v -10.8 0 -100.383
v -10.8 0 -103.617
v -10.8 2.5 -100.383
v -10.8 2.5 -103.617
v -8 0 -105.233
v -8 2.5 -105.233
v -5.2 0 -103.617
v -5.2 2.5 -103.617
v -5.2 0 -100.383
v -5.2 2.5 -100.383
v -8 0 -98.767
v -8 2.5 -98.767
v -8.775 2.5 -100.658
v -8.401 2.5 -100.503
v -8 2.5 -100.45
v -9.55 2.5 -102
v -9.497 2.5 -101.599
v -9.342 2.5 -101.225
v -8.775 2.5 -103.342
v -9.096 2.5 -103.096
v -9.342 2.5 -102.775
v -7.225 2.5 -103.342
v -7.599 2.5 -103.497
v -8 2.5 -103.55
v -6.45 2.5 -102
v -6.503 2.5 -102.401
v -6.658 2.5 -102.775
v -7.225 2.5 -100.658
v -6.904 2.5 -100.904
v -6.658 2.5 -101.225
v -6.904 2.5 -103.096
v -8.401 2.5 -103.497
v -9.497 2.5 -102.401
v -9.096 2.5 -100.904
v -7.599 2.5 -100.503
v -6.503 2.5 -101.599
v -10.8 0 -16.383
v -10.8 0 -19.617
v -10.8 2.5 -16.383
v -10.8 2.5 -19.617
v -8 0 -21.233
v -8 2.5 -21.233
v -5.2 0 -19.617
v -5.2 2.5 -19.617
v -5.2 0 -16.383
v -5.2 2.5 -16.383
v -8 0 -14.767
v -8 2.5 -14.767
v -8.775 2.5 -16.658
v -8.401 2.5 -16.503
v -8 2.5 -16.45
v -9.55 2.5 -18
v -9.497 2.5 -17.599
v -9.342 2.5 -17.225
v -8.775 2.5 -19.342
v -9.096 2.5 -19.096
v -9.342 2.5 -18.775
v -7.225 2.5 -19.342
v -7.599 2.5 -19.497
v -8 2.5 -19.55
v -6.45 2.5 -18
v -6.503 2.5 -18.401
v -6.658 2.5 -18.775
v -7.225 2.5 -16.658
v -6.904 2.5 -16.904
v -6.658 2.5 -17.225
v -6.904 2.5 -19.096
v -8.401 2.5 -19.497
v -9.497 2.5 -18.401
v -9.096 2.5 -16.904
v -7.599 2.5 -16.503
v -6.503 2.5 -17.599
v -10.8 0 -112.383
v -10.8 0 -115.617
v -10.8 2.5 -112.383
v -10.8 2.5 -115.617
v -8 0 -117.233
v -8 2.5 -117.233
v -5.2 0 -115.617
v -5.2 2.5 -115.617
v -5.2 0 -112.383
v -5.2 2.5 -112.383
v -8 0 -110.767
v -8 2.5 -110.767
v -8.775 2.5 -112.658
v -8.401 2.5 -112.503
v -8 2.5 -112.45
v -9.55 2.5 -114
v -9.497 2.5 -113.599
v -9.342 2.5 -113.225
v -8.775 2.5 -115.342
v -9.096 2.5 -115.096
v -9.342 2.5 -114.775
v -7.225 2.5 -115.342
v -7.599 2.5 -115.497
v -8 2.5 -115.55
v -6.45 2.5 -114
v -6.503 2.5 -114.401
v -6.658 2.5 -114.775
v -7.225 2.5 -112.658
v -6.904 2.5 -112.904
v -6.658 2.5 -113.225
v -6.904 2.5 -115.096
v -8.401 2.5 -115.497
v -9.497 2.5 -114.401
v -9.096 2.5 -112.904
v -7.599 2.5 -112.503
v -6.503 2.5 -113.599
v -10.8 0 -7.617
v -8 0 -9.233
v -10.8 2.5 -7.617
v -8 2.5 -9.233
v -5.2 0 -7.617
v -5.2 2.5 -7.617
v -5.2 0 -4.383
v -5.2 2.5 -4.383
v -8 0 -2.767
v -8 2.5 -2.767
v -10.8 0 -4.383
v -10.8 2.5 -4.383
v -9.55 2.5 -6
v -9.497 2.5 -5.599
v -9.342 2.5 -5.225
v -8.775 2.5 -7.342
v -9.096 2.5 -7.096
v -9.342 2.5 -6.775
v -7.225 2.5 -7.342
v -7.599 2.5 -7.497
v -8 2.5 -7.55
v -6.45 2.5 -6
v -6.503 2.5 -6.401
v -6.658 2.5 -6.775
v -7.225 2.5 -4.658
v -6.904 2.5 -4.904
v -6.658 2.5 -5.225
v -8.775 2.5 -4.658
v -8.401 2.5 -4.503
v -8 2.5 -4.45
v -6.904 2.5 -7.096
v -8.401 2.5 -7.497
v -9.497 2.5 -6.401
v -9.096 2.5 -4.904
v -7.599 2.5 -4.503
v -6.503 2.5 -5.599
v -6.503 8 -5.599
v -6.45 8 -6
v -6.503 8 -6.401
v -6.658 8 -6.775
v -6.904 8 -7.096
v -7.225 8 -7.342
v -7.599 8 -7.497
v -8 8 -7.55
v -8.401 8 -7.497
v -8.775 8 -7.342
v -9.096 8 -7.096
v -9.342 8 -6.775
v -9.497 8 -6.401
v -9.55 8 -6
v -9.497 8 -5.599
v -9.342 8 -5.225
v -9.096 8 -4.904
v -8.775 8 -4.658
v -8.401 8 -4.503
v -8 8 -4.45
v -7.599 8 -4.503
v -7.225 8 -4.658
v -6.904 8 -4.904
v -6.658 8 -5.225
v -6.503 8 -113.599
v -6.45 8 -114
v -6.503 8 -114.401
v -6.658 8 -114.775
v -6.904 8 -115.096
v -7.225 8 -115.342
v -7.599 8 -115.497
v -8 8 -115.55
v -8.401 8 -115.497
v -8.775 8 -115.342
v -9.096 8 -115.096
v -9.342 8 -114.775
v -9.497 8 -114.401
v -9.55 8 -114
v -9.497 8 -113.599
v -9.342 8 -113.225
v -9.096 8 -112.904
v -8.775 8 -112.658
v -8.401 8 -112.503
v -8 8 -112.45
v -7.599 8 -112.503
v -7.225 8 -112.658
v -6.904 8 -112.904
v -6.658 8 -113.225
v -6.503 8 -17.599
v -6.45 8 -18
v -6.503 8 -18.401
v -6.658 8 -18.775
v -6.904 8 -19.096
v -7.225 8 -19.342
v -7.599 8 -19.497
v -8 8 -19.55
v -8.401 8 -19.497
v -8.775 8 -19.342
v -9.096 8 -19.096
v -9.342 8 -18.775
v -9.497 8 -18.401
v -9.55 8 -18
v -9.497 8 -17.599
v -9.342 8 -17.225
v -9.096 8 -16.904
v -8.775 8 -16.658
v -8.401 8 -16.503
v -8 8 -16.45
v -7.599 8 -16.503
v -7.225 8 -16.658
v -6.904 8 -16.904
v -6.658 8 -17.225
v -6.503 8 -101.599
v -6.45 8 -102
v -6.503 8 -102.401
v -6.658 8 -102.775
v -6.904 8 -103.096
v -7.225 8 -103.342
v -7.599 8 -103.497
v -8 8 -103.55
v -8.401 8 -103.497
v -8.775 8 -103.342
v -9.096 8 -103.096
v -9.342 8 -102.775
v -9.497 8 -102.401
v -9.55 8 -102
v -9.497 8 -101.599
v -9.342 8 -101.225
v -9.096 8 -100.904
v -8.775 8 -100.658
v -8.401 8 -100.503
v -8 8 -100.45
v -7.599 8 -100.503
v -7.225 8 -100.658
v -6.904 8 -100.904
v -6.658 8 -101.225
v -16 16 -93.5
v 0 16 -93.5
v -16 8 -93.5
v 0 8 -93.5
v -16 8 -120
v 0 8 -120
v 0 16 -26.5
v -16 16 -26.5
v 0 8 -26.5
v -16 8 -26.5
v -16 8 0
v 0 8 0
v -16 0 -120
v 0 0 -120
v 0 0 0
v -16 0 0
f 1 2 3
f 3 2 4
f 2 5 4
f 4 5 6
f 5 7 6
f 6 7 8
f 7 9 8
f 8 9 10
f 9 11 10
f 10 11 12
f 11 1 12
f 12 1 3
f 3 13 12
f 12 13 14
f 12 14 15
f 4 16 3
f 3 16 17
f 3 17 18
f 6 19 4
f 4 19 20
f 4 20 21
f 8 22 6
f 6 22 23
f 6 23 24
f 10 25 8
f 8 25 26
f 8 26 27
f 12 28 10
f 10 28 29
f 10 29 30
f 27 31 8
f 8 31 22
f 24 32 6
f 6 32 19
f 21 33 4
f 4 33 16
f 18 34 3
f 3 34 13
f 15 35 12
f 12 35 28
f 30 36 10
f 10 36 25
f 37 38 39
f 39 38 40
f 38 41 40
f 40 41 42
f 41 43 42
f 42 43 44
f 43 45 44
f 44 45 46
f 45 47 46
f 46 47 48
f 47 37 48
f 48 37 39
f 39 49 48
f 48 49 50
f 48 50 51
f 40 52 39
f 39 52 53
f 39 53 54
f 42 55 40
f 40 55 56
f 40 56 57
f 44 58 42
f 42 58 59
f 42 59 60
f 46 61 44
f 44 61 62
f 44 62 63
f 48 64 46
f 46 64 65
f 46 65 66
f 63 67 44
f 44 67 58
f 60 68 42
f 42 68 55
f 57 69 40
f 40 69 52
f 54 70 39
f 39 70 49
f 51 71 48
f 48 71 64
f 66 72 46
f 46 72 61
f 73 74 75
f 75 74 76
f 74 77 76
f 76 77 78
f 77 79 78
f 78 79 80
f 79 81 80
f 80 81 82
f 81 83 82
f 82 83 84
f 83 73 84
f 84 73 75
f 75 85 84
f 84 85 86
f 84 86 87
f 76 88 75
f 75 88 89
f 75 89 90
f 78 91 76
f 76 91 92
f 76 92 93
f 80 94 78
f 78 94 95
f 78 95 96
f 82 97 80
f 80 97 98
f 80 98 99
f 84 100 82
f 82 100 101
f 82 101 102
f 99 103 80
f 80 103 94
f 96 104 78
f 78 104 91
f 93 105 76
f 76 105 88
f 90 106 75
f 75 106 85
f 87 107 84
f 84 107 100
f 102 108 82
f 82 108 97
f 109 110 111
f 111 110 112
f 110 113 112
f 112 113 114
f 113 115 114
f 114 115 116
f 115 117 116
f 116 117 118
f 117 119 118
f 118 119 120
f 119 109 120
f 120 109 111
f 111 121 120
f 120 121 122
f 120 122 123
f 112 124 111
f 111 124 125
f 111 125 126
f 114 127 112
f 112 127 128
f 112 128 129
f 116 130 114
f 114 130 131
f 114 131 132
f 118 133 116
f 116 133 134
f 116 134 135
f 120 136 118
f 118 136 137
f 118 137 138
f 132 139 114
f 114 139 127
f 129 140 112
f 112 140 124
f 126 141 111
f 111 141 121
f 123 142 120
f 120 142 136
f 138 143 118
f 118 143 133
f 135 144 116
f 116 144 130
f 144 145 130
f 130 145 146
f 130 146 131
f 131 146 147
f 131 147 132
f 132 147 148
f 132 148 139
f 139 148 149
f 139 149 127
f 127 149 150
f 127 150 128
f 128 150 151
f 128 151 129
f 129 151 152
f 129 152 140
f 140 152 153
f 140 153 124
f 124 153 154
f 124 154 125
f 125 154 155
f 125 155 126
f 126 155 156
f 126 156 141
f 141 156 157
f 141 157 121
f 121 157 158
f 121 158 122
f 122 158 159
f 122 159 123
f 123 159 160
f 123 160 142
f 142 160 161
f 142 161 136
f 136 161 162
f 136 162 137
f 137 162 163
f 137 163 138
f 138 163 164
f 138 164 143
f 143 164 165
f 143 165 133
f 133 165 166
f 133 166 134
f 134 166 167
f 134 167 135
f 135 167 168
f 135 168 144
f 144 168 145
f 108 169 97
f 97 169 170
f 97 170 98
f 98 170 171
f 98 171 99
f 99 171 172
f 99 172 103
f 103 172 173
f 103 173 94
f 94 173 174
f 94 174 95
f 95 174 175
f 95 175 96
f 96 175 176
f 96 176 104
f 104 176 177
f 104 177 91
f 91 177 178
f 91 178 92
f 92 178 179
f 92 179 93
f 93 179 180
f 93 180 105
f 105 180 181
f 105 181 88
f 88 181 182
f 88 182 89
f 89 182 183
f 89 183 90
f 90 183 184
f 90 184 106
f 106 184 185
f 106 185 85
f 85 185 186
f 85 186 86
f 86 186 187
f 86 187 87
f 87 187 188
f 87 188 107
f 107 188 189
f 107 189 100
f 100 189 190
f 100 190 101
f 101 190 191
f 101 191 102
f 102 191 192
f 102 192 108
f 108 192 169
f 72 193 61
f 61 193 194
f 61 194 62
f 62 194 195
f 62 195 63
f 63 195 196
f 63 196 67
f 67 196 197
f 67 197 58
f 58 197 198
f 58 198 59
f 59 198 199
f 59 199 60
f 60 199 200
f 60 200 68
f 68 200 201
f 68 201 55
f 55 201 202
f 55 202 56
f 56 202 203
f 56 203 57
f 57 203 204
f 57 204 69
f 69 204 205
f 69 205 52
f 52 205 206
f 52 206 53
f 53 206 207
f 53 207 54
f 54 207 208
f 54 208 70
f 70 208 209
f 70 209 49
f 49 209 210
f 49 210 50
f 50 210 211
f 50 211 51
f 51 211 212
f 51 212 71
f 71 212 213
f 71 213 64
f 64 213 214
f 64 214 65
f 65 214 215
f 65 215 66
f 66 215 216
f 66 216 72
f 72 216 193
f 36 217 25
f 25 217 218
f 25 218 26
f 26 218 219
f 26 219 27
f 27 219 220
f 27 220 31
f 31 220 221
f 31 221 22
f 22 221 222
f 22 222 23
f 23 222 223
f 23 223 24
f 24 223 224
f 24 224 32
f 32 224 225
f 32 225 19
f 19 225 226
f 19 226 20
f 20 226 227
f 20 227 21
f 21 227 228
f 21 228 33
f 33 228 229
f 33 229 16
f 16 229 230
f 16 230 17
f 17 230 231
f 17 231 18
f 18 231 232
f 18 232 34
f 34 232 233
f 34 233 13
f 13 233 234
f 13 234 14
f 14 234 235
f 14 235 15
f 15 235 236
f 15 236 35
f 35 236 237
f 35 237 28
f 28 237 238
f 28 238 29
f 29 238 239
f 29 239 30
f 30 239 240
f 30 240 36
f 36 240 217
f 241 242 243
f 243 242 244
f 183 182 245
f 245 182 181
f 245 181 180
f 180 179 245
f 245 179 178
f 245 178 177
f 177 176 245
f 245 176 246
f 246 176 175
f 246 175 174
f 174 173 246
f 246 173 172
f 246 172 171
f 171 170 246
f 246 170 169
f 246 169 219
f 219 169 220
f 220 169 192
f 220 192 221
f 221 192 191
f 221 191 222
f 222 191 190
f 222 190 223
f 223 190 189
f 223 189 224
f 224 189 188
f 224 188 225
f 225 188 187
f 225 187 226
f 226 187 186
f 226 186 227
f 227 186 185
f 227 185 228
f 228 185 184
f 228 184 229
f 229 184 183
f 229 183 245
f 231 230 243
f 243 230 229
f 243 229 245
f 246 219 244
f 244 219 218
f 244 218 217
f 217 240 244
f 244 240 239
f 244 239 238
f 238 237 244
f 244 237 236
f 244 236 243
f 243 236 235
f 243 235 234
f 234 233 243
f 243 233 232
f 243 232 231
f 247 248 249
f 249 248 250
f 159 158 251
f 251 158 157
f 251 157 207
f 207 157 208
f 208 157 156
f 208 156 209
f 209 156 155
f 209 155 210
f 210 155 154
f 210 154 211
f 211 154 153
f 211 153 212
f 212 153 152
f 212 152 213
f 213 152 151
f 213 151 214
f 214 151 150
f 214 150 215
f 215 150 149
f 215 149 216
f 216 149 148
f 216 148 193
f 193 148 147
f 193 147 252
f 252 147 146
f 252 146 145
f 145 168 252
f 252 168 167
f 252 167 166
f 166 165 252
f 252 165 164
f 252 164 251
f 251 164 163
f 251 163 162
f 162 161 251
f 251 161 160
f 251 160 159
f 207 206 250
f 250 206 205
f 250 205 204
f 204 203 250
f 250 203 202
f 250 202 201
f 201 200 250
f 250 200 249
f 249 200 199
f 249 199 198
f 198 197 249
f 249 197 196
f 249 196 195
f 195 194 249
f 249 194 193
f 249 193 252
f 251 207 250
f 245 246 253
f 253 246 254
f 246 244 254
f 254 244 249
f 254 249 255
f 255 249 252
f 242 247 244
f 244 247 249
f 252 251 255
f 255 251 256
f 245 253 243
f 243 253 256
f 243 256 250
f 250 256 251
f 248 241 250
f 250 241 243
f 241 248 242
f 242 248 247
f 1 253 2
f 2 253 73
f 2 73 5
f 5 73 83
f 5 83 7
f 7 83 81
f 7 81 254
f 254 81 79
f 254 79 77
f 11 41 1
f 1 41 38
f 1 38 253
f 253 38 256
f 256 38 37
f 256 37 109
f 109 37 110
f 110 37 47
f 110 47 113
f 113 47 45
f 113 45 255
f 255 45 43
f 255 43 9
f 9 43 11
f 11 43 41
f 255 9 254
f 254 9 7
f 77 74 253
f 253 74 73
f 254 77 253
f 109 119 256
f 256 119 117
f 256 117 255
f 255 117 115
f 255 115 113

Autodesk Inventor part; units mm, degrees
ref_plane "YZ Plane" through (0, 0, 0) normal (1, 0, 0) x (0, 1, 0)
ref_plane "XZ Plane" through (0, 0, 0) normal (0, 1, 0) x (-1, 0, 0)
ref_plane "XY Plane" through (0, 0, 0) normal (0, 0, 1) x (1, 0, 0)
sketch "Sketch1" plane through (0, 0, 0) normal (0, 1, 0) x (-1, 0, 0)
  line L0 (0, 0) -> (16, 0)
  line L1 (16, 0) -> (16, -120)
  line L2 (16, -120) -> (0, -120)
  line L3 (0, -120) -> (0, 0)
  dimension "d0" = 120
  dimension "d1" = 16
extrude "Extrusion" add sketch "Sketch1" along normal blind 16
sketch "Sketch2" plane through (0, 16, 0) normal (0, 1, 0) x (1, 0, 0)
  line L0 (0, 120) -> (-16, 120) projected
  line L1 (-16, 120) -> (-16, 0) projected
  line L2 (-16, 0) -> (0, 0) projected
  line L3 (0, 0) -> (0, 120) projected
  line L4 (-16, 120) -> (-16, 0) projected
  line L5 (-16, 0) -> (0, 0)
  line L6 (0, 0) -> (0, 26.5)
  line L7 (0, 26.5) -> (-16, 26.5)
  line L8 (-16, 26.5) -> (-16, 0)
  line L9 (0, 0) -> (0, 120) projected
  line L10 (-16, 120) -> (0, 120)
  line L11 (0, 120) -> (0, 93.5)
  line L12 (0, 93.5) -> (-16, 93.5)
  line L13 (-16, 93.5) -> (-16, 120)
  point P0 (-8, 26.5)
  point P1 (-16, 93.5)
  point P2 (-16, 26.5)
  dimension "d4" = 26.5
  dimension "d5" = 26.5
extrude "Extrusion2" cut sketch "Sketch2" against normal blind 8 contours L3 L12 L1 L0 | L3 L2 L1 L7
sketch "Sketch3" plane through (0, 0, 0) normal (0, -1, 0) x (1, 0, 0)
  line L0 (0, -120) -> (-16, -120) projected
  line L1 (0, 0) -> (0, -120) projected
  line L2 (-16, 0) -> (0, 0) projected
  line L3 (-16, -120) -> (-16, 0) projected
  circle A0 centre (-8, -6) radius 1.55
  line L4 (0, -26.5) -> (0, -93.5) construction
  line L5 (0, -60) -> (-16, -60) construction
  line L6 (-16, -120) -> (-16, 0) construction
  circle A1 centre (-8, -18) radius 1.55
  circle A2 centre (-8, -114) radius 1.55
  circle A3 centre (-8, -102) radius 1.55
  dimension "d8" = 3.1
  dimension "d9" = 8
  dimension "d10" = 6
  dimension "d11" = 12
extrude "Extrusion3" cut sketch "Sketch3" against normal through all contours A0 | A1 | A2 | A3
sketch "Sketch4" plane through (0, 0, 0) normal (0, -1, 0) x (1, 0, 0)
  circle A0 centre (-8, -6) radius 1.55 projected
  circle A1 centre (-8, -114) radius 1.55 projected
  circle A2 centre (-8, -18) radius 1.55 projected
  circle A3 centre (-8, -102) radius 1.55 projected
  line L0 (0, -120) -> (-16, -120) projected
  line L1 (0, 0) -> (0, -120) projected
  line L2 (-16, 0) -> (0, 0) projected
  line L3 (-16, -120) -> (-16, 0) projected
  circle A4 centre (-8, -6) radius 1.55 projected
  line L4 (-8, -2.7668) -> (-5.2, -4.3834)
  line L5 (-5.2, -4.3834) -> (-5.2, -7.6166)
  line L6 (-5.2, -7.6166) -> (-8, -9.2332)
  line L7 (-8, -9.2332) -> (-10.8, -7.6166)
  line L8 (-10.8, -7.6166) -> (-10.8, -4.3834)
  line L9 (-10.8, -4.3834) -> (-8, -2.7668)
  line L10 (-8, -14.7668) -> (-5.2, -16.3834)
  line L11 (-5.2, -16.3834) -> (-5.2, -19.6166)
  line L12 (-5.2, -19.6166) -> (-8, -21.2332)
  line L13 (-8, -21.2332) -> (-10.8, -19.6166)
  line L14 (-10.8, -19.6166) -> (-10.8, -16.3834)
  line L15 (-10.8, -16.3834) -> (-8, -14.7668)
  line L16 (-8, -98.7668) -> (-5.2, -100.3834)
  line L17 (-5.2, -100.3834) -> (-5.2, -103.6166)
  line L18 (-5.2, -103.6166) -> (-8, -105.2332)
  line L19 (-8, -105.2332) -> (-10.8, -103.6166)
  line L20 (-10.8, -103.6166) -> (-10.8, -100.3834)
  line L21 (-10.8, -100.3834) -> (-8, -98.7668)
  line L22 (-8, -110.7668) -> (-5.2, -112.3834)
  line L23 (-5.2, -112.3834) -> (-5.2, -115.6166)
  line L24 (-5.2, -115.6166) -> (-8, -117.2332)
  line L25 (-8, -117.2332) -> (-10.8, -115.6166)
  line L26 (-10.8, -115.6166) -> (-10.8, -112.3834)
  line L27 (-10.8, -112.3834) -> (-8, -110.7668)
  dimension "d14" = 5.6
  dimension "d15" = 5.6
  dimension "d16" = 5.6
  dimension "d17" = 5.6
extrude "Extrusion4" cut sketch "Sketch4" against normal blind 2.5 contours L4 L5 L6 L7 L8 L9 | L10 L11 L12 L13 L14 L15 | L16 L17 L18 L19 L20 L21 | L22 L23 L24 L25 L26 L27
properties part number "A_base"
